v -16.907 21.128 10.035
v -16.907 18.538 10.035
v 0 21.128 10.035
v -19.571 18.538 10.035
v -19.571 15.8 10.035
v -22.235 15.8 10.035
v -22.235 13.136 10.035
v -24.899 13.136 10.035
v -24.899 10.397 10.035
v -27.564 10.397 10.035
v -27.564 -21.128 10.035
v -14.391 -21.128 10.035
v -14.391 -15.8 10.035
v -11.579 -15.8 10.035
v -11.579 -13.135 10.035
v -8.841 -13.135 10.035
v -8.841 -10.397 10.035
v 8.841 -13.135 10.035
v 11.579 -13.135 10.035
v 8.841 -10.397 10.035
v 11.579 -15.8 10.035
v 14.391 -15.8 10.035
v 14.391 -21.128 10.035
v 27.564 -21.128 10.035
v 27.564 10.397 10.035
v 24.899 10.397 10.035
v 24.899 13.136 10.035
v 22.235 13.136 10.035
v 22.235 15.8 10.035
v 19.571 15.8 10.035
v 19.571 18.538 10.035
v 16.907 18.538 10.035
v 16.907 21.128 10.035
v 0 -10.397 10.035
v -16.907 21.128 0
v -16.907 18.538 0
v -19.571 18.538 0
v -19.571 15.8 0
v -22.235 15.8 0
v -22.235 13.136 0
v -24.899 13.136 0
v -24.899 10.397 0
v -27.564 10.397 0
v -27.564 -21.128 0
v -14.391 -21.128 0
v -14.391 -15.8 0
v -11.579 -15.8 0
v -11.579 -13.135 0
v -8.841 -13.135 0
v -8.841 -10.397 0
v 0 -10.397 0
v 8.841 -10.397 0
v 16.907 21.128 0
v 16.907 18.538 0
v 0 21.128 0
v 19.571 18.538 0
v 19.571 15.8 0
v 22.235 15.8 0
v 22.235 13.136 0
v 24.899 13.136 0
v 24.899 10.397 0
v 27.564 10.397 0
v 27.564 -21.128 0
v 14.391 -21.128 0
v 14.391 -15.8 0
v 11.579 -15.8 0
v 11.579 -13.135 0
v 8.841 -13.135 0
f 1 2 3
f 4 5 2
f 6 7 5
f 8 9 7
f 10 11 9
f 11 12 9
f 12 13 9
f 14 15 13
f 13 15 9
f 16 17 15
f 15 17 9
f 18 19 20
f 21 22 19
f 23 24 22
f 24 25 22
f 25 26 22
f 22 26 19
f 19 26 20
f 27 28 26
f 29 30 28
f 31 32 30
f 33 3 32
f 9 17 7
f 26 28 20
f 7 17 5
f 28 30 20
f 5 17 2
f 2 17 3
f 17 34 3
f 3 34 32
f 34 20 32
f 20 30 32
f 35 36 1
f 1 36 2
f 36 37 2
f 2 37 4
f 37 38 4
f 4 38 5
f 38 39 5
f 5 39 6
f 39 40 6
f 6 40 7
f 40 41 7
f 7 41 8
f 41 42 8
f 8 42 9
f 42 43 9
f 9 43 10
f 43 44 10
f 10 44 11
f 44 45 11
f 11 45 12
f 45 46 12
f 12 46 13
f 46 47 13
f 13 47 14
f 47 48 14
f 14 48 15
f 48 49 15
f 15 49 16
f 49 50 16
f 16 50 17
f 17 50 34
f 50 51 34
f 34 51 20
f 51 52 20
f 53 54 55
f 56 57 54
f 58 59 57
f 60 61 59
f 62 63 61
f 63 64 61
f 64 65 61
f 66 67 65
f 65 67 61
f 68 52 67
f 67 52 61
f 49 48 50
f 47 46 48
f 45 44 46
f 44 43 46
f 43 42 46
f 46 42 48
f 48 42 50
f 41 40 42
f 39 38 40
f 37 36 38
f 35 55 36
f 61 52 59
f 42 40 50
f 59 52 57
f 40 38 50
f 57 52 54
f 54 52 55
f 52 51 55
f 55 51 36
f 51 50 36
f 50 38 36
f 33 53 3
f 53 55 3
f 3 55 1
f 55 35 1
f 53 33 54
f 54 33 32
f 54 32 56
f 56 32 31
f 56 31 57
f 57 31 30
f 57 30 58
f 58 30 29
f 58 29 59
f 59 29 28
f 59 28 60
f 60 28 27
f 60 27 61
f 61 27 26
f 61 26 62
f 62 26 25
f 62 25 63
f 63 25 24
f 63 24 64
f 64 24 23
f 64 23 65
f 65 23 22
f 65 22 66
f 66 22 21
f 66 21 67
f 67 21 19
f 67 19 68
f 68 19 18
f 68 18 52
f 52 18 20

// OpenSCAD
module invaders_v2_sheild1() 
{
	polyhedron(
		points=[
			[-16.90716, 21.12781, 10.03544],
			[-16.90716, 18.53771, 10.03544],
			[-5.722046e-06, 21.12781, 10.03544],
			[-19.57126, 18.53771, 10.03544],
			[-19.57126, 15.7996, 10.03544],
			[-16.90716, 18.53771, 10.03544],
			[-22.23536, 15.7996, 10.03544],
			[-22.23536, 13.1355, 10.03544],
			[-19.57126, 15.7996, 10.03544],
			[-24.89947, 13.1355, 10.03544],
			[-24.89947, 10.3974, 10.03544],
			[-22.23536, 13.1355, 10.03544],
			[-27.56356, 10.3974, 10.03544],
			[-27.56356, -21.12781, 10.03544],
			[-24.89947, 10.3974, 10.03544],
			[-27.56356, -21.12781, 10.03544],
			[-14.39106, -21.12781, 10.03544],
			[-24.89947, 10.3974, 10.03544],
			[-14.39106, -21.12781, 10.03544],
			[-14.39106, -15.7996, 10.03544],
			[-24.89947, 10.3974, 10.03544],
			[-11.57896, -15.7996, 10.03544],
			[-11.57896, -13.13549, 10.03544],
			[-14.39106, -15.7996, 10.03544],
			[-14.39106, -15.7996, 10.03544],
			[-11.57896, -13.13549, 10.03544],
			[-24.89947, 10.3974, 10.03544],
			[-8.840849, -13.13549, 10.03544],
			[-8.840849, -10.39739, 10.03544],
			[-11.57896, -13.13549, 10.03544],
			[-11.57896, -13.13549, 10.03544],
			[-8.840849, -10.39739, 10.03544],
			[-24.89947, 10.3974, 10.03544],
			[8.840845, -13.13549, 10.03544],
			[11.57895, -13.13549, 10.03544],
			[8.840845, -10.39739, 10.03544],
			[11.57895, -15.7996, 10.03544],
			[14.39105, -15.7996, 10.03544],
			[11.57895, -13.13549, 10.03544],
			[14.39105, -21.12781, 10.03544],
			[27.56356, -21.12781, 10.03544],
			[14.39105, -15.7996, 10.03544],
			[27.56356, -21.12781, 10.03544],
			[27.56356, 10.3974, 10.03544],
			[14.39105, -15.7996, 10.03544],
			[27.56356, 10.3974, 10.03544],
			[24.89946, 10.3974, 10.03544],
			[14.39105, -15.7996, 10.03544],
			[14.39105, -15.7996, 10.03544],
			[24.89946, 10.3974, 10.03544],
			[11.57895, -13.13549, 10.03544],
			[11.57895, -13.13549, 10.03544],
			[24.89946, 10.3974, 10.03544],
			[8.840845, -10.39739, 10.03544],
			[24.89946, 13.1355, 10.03544],
			[22.23535, 13.1355, 10.03544],
			[24.89946, 10.3974, 10.03544],
			[22.23535, 15.7996, 10.03544],
			[19.57125, 15.7996, 10.03544],
			[22.23535, 13.1355, 10.03544],
			[19.57125, 18.53771, 10.03544],
			[16.90715, 18.53771, 10.03544],
			[19.57125, 15.7996, 10.03544],
			[16.90715, 21.12781, 10.03544],
			[-5.722046e-06, 21.12781, 10.03544],
			[16.90715, 18.53771, 10.03544],
			[-24.89947, 10.3974, 10.03544],
			[-8.840849, -10.39739, 10.03544],
			[-22.23536, 13.1355, 10.03544],
			[24.89946, 10.3974, 10.03544],
			[22.23535, 13.1355, 10.03544],
			[8.840845, -10.39739, 10.03544],
			[-22.23536, 13.1355, 10.03544],
			[-8.840849, -10.39739, 10.03544],
			[-19.57126, 15.7996, 10.03544],
			[22.23535, 13.1355, 10.03544],
			[19.57125, 15.7996, 10.03544],
			[8.840845, -10.39739, 10.03544],
			[-19.57126, 15.7996, 10.03544],
			[-8.840849, -10.39739, 10.03544],
			[-16.90716, 18.53771, 10.03544],
			[-16.90716, 18.53771, 10.03544],
			[-8.840849, -10.39739, 10.03544],
			[-5.722046e-06, 21.12781, 10.03544],
			[-8.840849, -10.39739, 10.03544],
			[-5.722046e-06, -10.39739, 10.03544],
			[-5.722046e-06, 21.12781, 10.03544],
			[-5.722046e-06, 21.12781, 10.03544],
			[-5.722046e-06, -10.39739, 10.03544],
			[16.90715, 18.53771, 10.03544],
			[-5.722046e-06, -10.39739, 10.03544],
			[8.840845, -10.39739, 10.03544],
			[16.90715, 18.53771, 10.03544],
			[8.840845, -10.39739, 10.03544],
			[19.57125, 15.7996, 10.03544],
			[16.90715, 18.53771, 10.03544],
			[-16.90716, 21.12781, 0.0],
			[-16.90716, 18.53771, 2.220446e-16],
			[-16.90716, 21.12781, 10.03544],
			[-16.90716, 21.12781, 10.03544],
			[-16.90716, 18.53771, 2.220446e-16],
			[-16.90716, 18.53771, 10.03544],
			[-16.90716, 18.53771, 2.220446e-16],
			[-19.57126, 18.53771, 2.220446e-16],
			[-16.90716, 18.53771, 10.03544],
			[-16.90716, 18.53771, 10.03544],
			[-19.57126, 18.53771, 2.220446e-16],
			[-19.57126, 18.53771, 10.03544],
			[-19.57126, 18.53771, 2.220446e-16],
			[-19.57126, 15.7996, 2.220446e-16],
			[-19.57126, 18.53771, 10.03544],
			[-19.57126, 18.53771, 10.03544],
			[-19.57126, 15.7996, 2.220446e-16],
			[-19.57126, 15.7996, 10.03544],
			[-19.57126, 15.7996, 2.220446e-16],
			[-22.23536, 15.7996, 2.220446e-16],
			[-19.57126, 15.7996, 10.03544],
			[-19.57126, 15.7996, 10.03544],
			[-22.23536, 15.7996, 2.220446e-16],
			[-22.23536, 15.7996, 10.03544],
			[-22.23536, 15.7996, 2.220446e-16],
			[-22.23536, 13.1355, 4.440892e-16],
			[-22.23536, 15.7996, 10.03544],
			[-22.23536, 15.7996, 10.03544],
			[-22.23536, 13.1355, 4.440892e-16],
			[-22.23536, 13.1355, 10.03544],
			[-22.23536, 13.1355, 4.440892e-16],
			[-24.89947, 13.1355, 4.440892e-16],
			[-22.23536, 13.1355, 10.03544],
			[-22.23536, 13.1355, 10.03544],
			[-24.89947, 13.1355, 4.440892e-16],
			[-24.89947, 13.1355, 10.03544],
			[-24.89947, 13.1355, 4.440892e-16],
			[-24.89947, 10.3974, 6.661338e-16],
			[-24.89947, 13.1355, 10.03544],
			[-24.89947, 13.1355, 10.03544],
			[-24.89947, 10.3974, 6.661338e-16],
			[-24.89947, 10.3974, 10.03544],
			[-24.89947, 10.3974, 6.661338e-16],
			[-27.56356, 10.3974, 6.661338e-16],
			[-24.89947, 10.3974, 10.03544],
			[-24.89947, 10.3974, 10.03544],
			[-27.56356, 10.3974, 6.661338e-16],
			[-27.56356, 10.3974, 10.03544],
			[-27.56356, 10.3974, 6.661338e-16],
			[-27.56356, -21.12781, 2.442491e-15],
			[-27.56356, 10.3974, 10.03544],
			[-27.56356, 10.3974, 10.03544],
			[-27.56356, -21.12781, 2.442491e-15],
			[-27.56356, -21.12781, 10.03544],
			[-27.56356, -21.12781, 2.442491e-15],
			[-14.39106, -21.12781, 2.442491e-15],
			[-27.56356, -21.12781, 10.03544],
			[-27.56356, -21.12781, 10.03544],
			[-14.39106, -21.12781, 2.442491e-15],
			[-14.39106, -21.12781, 10.03544],
			[-14.39106, -21.12781, 2.442491e-15],
			[-14.39106, -15.7996, 2.220446e-15],
			[-14.39106, -21.12781, 10.03544],
			[-14.39106, -21.12781, 10.03544],
			[-14.39106, -15.7996, 2.220446e-15],
			[-14.39106, -15.7996, 10.03544],
			[-14.39106, -15.7996, 2.220446e-15],
			[-11.57896, -15.7996, 2.220446e-15],
			[-14.39106, -15.7996, 10.03544],
			[-14.39106, -15.7996, 10.03544],
			[-11.57896, -15.7996, 2.220446e-15],
			[-11.57896, -15.7996, 10.03544],
			[-11.57896, -15.7996, 2.220446e-15],
			[-11.57896, -13.13549, 1.998401e-15],
			[-11.57896, -15.7996, 10.03544],
			[-11.57896, -15.7996, 10.03544],
			[-11.57896, -13.13549, 1.998401e-15],
			[-11.57896, -13.13549, 10.03544],
			[-11.57896, -13.13549, 1.998401e-15],
			[-8.840849, -13.13549, 1.998401e-15],
			[-11.57896, -13.13549, 10.03544],
			[-11.57896, -13.13549, 10.03544],
			[-8.840849, -13.13549, 1.998401e-15],
			[-8.840849, -13.13549, 10.03544],
			[-8.840849, -13.13549, 1.998401e-15],
			[-8.840849, -10.39739, 1.998401e-15],
			[-8.840849, -13.13549, 10.03544],
			[-8.840849, -13.13549, 10.03544],
			[-8.840849, -10.39739, 1.998401e-15],
			[-8.840849, -10.39739, 10.03544],
			[-8.840849, -10.39739, 10.03544],
			[-8.840849, -10.39739, 1.998401e-15],
			[-5.722046e-06, -10.39739, 10.03544],
			[-8.840849, -10.39739, 1.998401e-15],
			[-5.722046e-06, -10.39739, 1.998401e-15],
			[-5.722046e-06, -10.39739, 10.03544],
			[-5.722046e-06, -10.39739, 10.03544],
			[-5.722046e-06, -10.39739, 1.998401e-15],
			[8.840845, -10.39739, 10.03544],
			[-5.722046e-06, -10.39739, 1.998401e-15],
			[8.840845, -10.39739, 1.998401e-15],
			[8.840845, -10.39739, 10.03544],
			[16.90715, 21.12781, 0.0],
			[16.90715, 18.53771, 2.220446e-16],
			[-5.722046e-06, 21.12781, 0.0],
			[19.57125, 18.53771, 2.220446e-16],
			[19.57125, 15.7996, 2.220446e-16],
			[16.90715, 18.53771, 2.220446e-16],
			[22.23535, 15.7996, 2.220446e-16],
			[22.23535, 13.1355, 4.440892e-16],
			[19.57125, 15.7996, 2.220446e-16],
			[24.89946, 13.1355, 4.440892e-16],
			[24.89946, 10.3974, 6.661338e-16],
			[22.23535, 13.1355, 4.440892e-16],
			[27.56356, 10.3974, 6.661338e-16],
			[27.56356, -21.12781, 2.442491e-15],
			[24.89946, 10.3974, 6.661338e-16],
			[27.56356, -21.12781, 2.442491e-15],
			[14.39105, -21.12781, 2.442491e-15],
			[24.89946, 10.3974, 6.661338e-16],
			[14.39105, -21.12781, 2.442491e-15],
			[14.39105, -15.7996, 2.220446e-15],
			[24.89946, 10.3974, 6.661338e-16],
			[11.57895, -15.7996, 2.220446e-15],
			[11.57895, -13.13549, 1.998401e-15],
			[14.39105, -15.7996, 2.220446e-15],
			[14.39105, -15.7996, 2.220446e-15],
			[11.57895, -13.13549, 1.998401e-15],
			[24.89946, 10.3974, 6.661338e-16],
			[8.840845, -13.13549, 1.998401e-15],
			[8.840845, -10.39739, 1.998401e-15],
			[11.57895, -13.13549, 1.998401e-15],
			[11.57895, -13.13549, 1.998401e-15],
			[8.840845, -10.39739, 1.998401e-15],
			[24.89946, 10.3974, 6.661338e-16],
			[-8.840849, -13.13549, 1.998401e-15],
			[-11.57896, -13.13549, 1.998401e-15],
			[-8.840849, -10.39739, 1.998401e-15],
			[-11.57896, -15.7996, 2.220446e-15],
			[-14.39106, -15.7996, 2.220446e-15],
			[-11.57896, -13.13549, 1.998401e-15],
			[-14.39106, -21.12781, 2.442491e-15],
			[-27.56356, -21.12781, 2.442491e-15],
			[-14.39106, -15.7996, 2.220446e-15],
			[-27.56356, -21.12781, 2.442491e-15],
			[-27.56356, 10.3974, 6.661338e-16],
			[-14.39106, -15.7996, 2.220446e-15],
			[-27.56356, 10.3974, 6.661338e-16],
			[-24.89947, 10.3974, 6.661338e-16],
			[-14.39106, -15.7996, 2.220446e-15],
			[-14.39106, -15.7996, 2.220446e-15],
			[-24.89947, 10.3974, 6.661338e-16],
			[-11.57896, -13.13549, 1.998401e-15],
			[-11.57896, -13.13549, 1.998401e-15],
			[-24.89947, 10.3974, 6.661338e-16],
			[-8.840849, -10.39739, 1.998401e-15],
			[-24.89947, 13.1355, 4.440892e-16],
			[-22.23536, 13.1355, 4.440892e-16],
			[-24.89947, 10.3974, 6.661338e-16],
			[-22.23536, 15.7996, 2.220446e-16],
			[-19.57126, 15.7996, 2.220446e-16],
			[-22.23536, 13.1355, 4.440892e-16],
			[-19.57126, 18.53771, 2.220446e-16],
			[-16.90716, 18.53771, 2.220446e-16],
			[-19.57126, 15.7996, 2.220446e-16],
			[-16.90716, 21.12781, 0.0],
			[-5.722046e-06, 21.12781, 0.0],
			[-16.90716, 18.53771, 2.220446e-16],
			[24.89946, 10.3974, 6.661338e-16],
			[8.840845, -10.39739, 1.998401e-15],
			[22.23535, 13.1355, 4.440892e-16],
			[-24.89947, 10.3974, 6.661338e-16],
			[-22.23536, 13.1355, 4.440892e-16],
			[-8.840849, -10.39739, 1.998401e-15],
			[22.23535, 13.1355, 4.440892e-16],
			[8.840845, -10.39739, 1.998401e-15],
			[19.57125, 15.7996, 2.220446e-16],
			[-22.23536, 13.1355, 4.440892e-16],
			[-19.57126, 15.7996, 2.220446e-16],
			[-8.840849, -10.39739, 1.998401e-15],
			[19.57125, 15.7996, 2.220446e-16],
			[8.840845, -10.39739, 1.998401e-15],
			[16.90715, 18.53771, 2.220446e-16],
			[16.90715, 18.53771, 2.220446e-16],
			[8.840845, -10.39739, 1.998401e-15],
			[-5.722046e-06, 21.12781, 0.0],
			[8.840845, -10.39739, 1.998401e-15],
			[-5.722046e-06, -10.39739, 1.998401e-15],
			[-5.722046e-06, 21.12781, 0.0],
			[-5.722046e-06, 21.12781, 0.0],
			[-5.722046e-06, -10.39739, 1.998401e-15],
			[-16.90716, 18.53771, 2.220446e-16],
			[-5.722046e-06, -10.39739, 1.998401e-15],
			[-8.840849, -10.39739, 1.998401e-15],
			[-16.90716, 18.53771, 2.220446e-16],
			[-8.840849, -10.39739, 1.998401e-15],
			[-19.57126, 15.7996, 2.220446e-16],
			[-16.90716, 18.53771, 2.220446e-16],
			[16.90715, 21.12781, 10.03544],
			[16.90715, 21.12781, 0.0],
			[-5.722046e-06, 21.12781, 10.03544],
			[16.90715, 21.12781, 0.0],
			[-5.722046e-06, 21.12781, 0.0],
			[-5.722046e-06, 21.12781, 10.03544],
			[-5.722046e-06, 21.12781, 10.03544],
			[-5.722046e-06, 21.12781, 0.0],
			[-16.90716, 21.12781, 10.03544],
			[-5.722046e-06, 21.12781, 0.0],
			[-16.90716, 21.12781, 0.0],
			[-16.90716, 21.12781, 10.03544],
			[16.90715, 21.12781, 0.0],
			[16.90715, 21.12781, 10.03544],
			[16.90715, 18.53771, 2.220446e-16],
			[16.90715, 18.53771, 2.220446e-16],
			[16.90715, 21.12781, 10.03544],
			[16.90715, 18.53771, 10.03544],
			[16.90715, 18.53771, 2.220446e-16],
			[16.90715, 18.53771, 10.03544],
			[19.57125, 18.53771, 2.220446e-16],
			[19.57125, 18.53771, 2.220446e-16],
			[16.90715, 18.53771, 10.03544],
			[19.57125, 18.53771, 10.03544],
			[19.57125, 18.53771, 2.220446e-16],
			[19.57125, 18.53771, 10.03544],
			[19.57125, 15.7996, 2.220446e-16],
			[19.57125, 15.7996, 2.220446e-16],
			[19.57125, 18.53771, 10.03544],
			[19.57125, 15.7996, 10.03544],
			[19.57125, 15.7996, 2.220446e-16],
			[19.57125, 15.7996, 10.03544],
			[22.23535, 15.7996, 2.220446e-16],
			[22.23535, 15.7996, 2.220446e-16],
			[19.57125, 15.7996, 10.03544],
			[22.23535, 15.7996, 10.03544],
			[22.23535, 15.7996, 2.220446e-16],
			[22.23535, 15.7996, 10.03544],
			[22.23535, 13.1355, 4.440892e-16],
			[22.23535, 13.1355, 4.440892e-16],
			[22.23535, 15.7996, 10.03544],
			[22.23535, 13.1355, 10.03544],
			[22.23535, 13.1355, 4.440892e-16],
			[22.23535, 13.1355, 10.03544],
			[24.89946, 13.1355, 4.440892e-16],
			[24.89946, 13.1355, 4.440892e-16],
			[22.23535, 13.1355, 10.03544],
			[24.89946, 13.1355, 10.03544],
			[24.89946, 13.1355, 4.440892e-16],
			[24.89946, 13.1355, 10.03544],
			[24.89946, 10.3974, 6.661338e-16],
			[24.89946, 10.3974, 6.661338e-16],
			[24.89946, 13.1355, 10.03544],
			[24.89946, 10.3974, 10.03544],
			[24.89946, 10.3974, 6.661338e-16],
			[24.89946, 10.3974, 10.03544],
			[27.56356, 10.3974, 6.661338e-16],
			[27.56356, 10.3974, 6.661338e-16],
			[24.89946, 10.3974, 10.03544],
			[27.56356, 10.3974, 10.03544],
			[27.56356, 10.3974, 6.661338e-16],
			[27.56356, 10.3974, 10.03544],
			[27.56356, -21.12781, 2.442491e-15],
			[27.56356, -21.12781, 2.442491e-15],
			[27.56356, 10.3974, 10.03544],
			[27.56356, -21.12781, 10.03544],
			[27.56356, -21.12781, 2.442491e-15],
			[27.56356, -21.12781, 10.03544],
			[14.39105, -21.12781, 2.442491e-15],
			[14.39105, -21.12781, 2.442491e-15],
			[27.56356, -21.12781, 10.03544],
			[14.39105, -21.12781, 10.03544],
			[14.39105, -21.12781, 2.442491e-15],
			[14.39105, -21.12781, 10.03544],
			[14.39105, -15.7996, 2.220446e-15],
			[14.39105, -15.7996, 2.220446e-15],
			[14.39105, -21.12781, 10.03544],
			[14.39105, -15.7996, 10.03544],
			[14.39105, -15.7996, 2.220446e-15],
			[14.39105, -15.7996, 10.03544],
			[11.57895, -15.7996, 2.220446e-15],
			[11.57895, -15.7996, 2.220446e-15],
			[14.39105, -15.7996, 10.03544],
			[11.57895, -15.7996, 10.03544],
			[11.57895, -15.7996, 2.220446e-15],
			[11.57895, -15.7996, 10.03544],
			[11.57895, -13.13549, 1.998401e-15],
			[11.57895, -13.13549, 1.998401e-15],
			[11.57895, -15.7996, 10.03544],
			[11.57895, -13.13549, 10.03544],
			[11.57895, -13.13549, 1.998401e-15],
			[11.57895, -13.13549, 10.03544],
			[8.840845, -13.13549, 1.998401e-15],
			[8.840845, -13.13549, 1.998401e-15],
			[11.57895, -13.13549, 10.03544],
			[8.840845, -13.13549, 10.03544],
			[8.840845, -13.13549, 1.998401e-15],
			[8.840845, -13.13549, 10.03544],
			[8.840845, -10.39739, 1.998401e-15],
			[8.840845, -10.39739, 1.998401e-15],
			[8.840845, -13.13549, 10.03544],
			[8.840845, -10.39739, 10.03544]
		],
		faces=[
			[0, 1, 2],
			[3, 4, 5],
			[6, 7, 8],
			[9, 10, 11],
			[12, 13, 14],
			[15, 16, 17],
			[18, 19, 20],
			[21, 22, 23],
			[24, 25, 26],
			[27, 28, 29],
			[30, 31, 32],
			[33, 34, 35],
			[36, 37, 38],
			[39, 40, 41],
			[42, 43, 44],
			[45, 46, 47],
			[48, 49, 50],
			[51, 52, 53],
			[54, 55, 56],
			[57, 58, 59],
			[60, 61, 62],
			[63, 64, 65],
			[66, 67, 68],
			[69, 70, 71],
			[72, 73, 74],
			[75, 76, 77],
			[78, 79, 80],
			[81, 82, 83],
			[84, 85, 86],
			[87, 88, 89],
			[90, 91, 92],
			[93, 94, 95],
			[96, 97, 98],
			[99, 100, 101],
			[102, 103, 104],
			[105, 106, 107],
			[108, 109, 110],
			[111, 112, 113],
			[114, 115, 116],
			[117, 118, 119],
			[120, 121, 122],
			[123, 124, 125],
			[126, 127, 128],
			[129, 130, 131],
			[132, 133, 134],
			[135, 136, 137],
			[138, 139, 140],
			[141, 142, 143],
			[144, 145, 146],
			[147, 148, 149],
			[150, 151, 152],
			[153, 154, 155],
			[156, 157, 158],
			[159, 160, 161],
			[162, 163, 164],
			[165, 166, 167],
			[168, 169, 170],
			[171, 172, 173],
			[174, 175, 176],
			[177, 178, 179],
			[180, 181, 182],
			[183, 184, 185],
			[186, 187, 188],
			[189, 190, 191],
			[192, 193, 194],
			[195, 196, 197],
			[198, 199, 200],
			[201, 202, 203],
			[204, 205, 206],
			[207, 208, 209],
			[210, 211, 212],
			[213, 214, 215],
			[216, 217, 218],
			[219, 220, 221],
			[222, 223, 224],
			[225, 226, 227],
			[228, 229, 230],
			[231, 232, 233],
			[234, 235, 236],
			[237, 238, 239],
			[240, 241, 242],
			[243, 244, 245],
			[246, 247, 248],
			[249, 250, 251],
			[252, 253, 254],
			[255, 256, 257],
			[258, 259, 260],
			[261, 262, 263],
			[264, 265, 266],
			[267, 268, 269],
			[270, 271, 272],
			[273, 274, 275],
			[276, 277, 278],
			[279, 280, 281],
			[282, 283, 284],
			[285, 286, 287],
			[288, 289, 290],
			[291, 292, 293],
			[294, 295, 296],
			[297, 298, 299],
			[300, 301, 302],
			[303, 304, 305],
			[306, 307, 308],
			[309, 310, 311],
			[312, 313, 314],
			[315, 316, 317],
			[318, 319, 320],
			[321, 322, 323],
			[324, 325, 326],
			[327, 328, 329],
			[330, 331, 332],
			[333, 334, 335],
			[336, 337, 338],
			[339, 340, 341],
			[342, 343, 344],
			[345, 346, 347],
			[348, 349, 350],
			[351, 352, 353],
			[354, 355, 356],
			[357, 358, 359],
			[360, 361, 362],
			[363, 364, 365],
			[366, 367, 368],
			[369, 370, 371],
			[372, 373, 374],
			[375, 376, 377],
			[378, 379, 380],
			[381, 382, 383],
			[384, 385, 386],
			[387, 388, 389],
			[390, 391, 392],
			[393, 394, 395]
		]
	);
}

invaders_v2_sheild1();
